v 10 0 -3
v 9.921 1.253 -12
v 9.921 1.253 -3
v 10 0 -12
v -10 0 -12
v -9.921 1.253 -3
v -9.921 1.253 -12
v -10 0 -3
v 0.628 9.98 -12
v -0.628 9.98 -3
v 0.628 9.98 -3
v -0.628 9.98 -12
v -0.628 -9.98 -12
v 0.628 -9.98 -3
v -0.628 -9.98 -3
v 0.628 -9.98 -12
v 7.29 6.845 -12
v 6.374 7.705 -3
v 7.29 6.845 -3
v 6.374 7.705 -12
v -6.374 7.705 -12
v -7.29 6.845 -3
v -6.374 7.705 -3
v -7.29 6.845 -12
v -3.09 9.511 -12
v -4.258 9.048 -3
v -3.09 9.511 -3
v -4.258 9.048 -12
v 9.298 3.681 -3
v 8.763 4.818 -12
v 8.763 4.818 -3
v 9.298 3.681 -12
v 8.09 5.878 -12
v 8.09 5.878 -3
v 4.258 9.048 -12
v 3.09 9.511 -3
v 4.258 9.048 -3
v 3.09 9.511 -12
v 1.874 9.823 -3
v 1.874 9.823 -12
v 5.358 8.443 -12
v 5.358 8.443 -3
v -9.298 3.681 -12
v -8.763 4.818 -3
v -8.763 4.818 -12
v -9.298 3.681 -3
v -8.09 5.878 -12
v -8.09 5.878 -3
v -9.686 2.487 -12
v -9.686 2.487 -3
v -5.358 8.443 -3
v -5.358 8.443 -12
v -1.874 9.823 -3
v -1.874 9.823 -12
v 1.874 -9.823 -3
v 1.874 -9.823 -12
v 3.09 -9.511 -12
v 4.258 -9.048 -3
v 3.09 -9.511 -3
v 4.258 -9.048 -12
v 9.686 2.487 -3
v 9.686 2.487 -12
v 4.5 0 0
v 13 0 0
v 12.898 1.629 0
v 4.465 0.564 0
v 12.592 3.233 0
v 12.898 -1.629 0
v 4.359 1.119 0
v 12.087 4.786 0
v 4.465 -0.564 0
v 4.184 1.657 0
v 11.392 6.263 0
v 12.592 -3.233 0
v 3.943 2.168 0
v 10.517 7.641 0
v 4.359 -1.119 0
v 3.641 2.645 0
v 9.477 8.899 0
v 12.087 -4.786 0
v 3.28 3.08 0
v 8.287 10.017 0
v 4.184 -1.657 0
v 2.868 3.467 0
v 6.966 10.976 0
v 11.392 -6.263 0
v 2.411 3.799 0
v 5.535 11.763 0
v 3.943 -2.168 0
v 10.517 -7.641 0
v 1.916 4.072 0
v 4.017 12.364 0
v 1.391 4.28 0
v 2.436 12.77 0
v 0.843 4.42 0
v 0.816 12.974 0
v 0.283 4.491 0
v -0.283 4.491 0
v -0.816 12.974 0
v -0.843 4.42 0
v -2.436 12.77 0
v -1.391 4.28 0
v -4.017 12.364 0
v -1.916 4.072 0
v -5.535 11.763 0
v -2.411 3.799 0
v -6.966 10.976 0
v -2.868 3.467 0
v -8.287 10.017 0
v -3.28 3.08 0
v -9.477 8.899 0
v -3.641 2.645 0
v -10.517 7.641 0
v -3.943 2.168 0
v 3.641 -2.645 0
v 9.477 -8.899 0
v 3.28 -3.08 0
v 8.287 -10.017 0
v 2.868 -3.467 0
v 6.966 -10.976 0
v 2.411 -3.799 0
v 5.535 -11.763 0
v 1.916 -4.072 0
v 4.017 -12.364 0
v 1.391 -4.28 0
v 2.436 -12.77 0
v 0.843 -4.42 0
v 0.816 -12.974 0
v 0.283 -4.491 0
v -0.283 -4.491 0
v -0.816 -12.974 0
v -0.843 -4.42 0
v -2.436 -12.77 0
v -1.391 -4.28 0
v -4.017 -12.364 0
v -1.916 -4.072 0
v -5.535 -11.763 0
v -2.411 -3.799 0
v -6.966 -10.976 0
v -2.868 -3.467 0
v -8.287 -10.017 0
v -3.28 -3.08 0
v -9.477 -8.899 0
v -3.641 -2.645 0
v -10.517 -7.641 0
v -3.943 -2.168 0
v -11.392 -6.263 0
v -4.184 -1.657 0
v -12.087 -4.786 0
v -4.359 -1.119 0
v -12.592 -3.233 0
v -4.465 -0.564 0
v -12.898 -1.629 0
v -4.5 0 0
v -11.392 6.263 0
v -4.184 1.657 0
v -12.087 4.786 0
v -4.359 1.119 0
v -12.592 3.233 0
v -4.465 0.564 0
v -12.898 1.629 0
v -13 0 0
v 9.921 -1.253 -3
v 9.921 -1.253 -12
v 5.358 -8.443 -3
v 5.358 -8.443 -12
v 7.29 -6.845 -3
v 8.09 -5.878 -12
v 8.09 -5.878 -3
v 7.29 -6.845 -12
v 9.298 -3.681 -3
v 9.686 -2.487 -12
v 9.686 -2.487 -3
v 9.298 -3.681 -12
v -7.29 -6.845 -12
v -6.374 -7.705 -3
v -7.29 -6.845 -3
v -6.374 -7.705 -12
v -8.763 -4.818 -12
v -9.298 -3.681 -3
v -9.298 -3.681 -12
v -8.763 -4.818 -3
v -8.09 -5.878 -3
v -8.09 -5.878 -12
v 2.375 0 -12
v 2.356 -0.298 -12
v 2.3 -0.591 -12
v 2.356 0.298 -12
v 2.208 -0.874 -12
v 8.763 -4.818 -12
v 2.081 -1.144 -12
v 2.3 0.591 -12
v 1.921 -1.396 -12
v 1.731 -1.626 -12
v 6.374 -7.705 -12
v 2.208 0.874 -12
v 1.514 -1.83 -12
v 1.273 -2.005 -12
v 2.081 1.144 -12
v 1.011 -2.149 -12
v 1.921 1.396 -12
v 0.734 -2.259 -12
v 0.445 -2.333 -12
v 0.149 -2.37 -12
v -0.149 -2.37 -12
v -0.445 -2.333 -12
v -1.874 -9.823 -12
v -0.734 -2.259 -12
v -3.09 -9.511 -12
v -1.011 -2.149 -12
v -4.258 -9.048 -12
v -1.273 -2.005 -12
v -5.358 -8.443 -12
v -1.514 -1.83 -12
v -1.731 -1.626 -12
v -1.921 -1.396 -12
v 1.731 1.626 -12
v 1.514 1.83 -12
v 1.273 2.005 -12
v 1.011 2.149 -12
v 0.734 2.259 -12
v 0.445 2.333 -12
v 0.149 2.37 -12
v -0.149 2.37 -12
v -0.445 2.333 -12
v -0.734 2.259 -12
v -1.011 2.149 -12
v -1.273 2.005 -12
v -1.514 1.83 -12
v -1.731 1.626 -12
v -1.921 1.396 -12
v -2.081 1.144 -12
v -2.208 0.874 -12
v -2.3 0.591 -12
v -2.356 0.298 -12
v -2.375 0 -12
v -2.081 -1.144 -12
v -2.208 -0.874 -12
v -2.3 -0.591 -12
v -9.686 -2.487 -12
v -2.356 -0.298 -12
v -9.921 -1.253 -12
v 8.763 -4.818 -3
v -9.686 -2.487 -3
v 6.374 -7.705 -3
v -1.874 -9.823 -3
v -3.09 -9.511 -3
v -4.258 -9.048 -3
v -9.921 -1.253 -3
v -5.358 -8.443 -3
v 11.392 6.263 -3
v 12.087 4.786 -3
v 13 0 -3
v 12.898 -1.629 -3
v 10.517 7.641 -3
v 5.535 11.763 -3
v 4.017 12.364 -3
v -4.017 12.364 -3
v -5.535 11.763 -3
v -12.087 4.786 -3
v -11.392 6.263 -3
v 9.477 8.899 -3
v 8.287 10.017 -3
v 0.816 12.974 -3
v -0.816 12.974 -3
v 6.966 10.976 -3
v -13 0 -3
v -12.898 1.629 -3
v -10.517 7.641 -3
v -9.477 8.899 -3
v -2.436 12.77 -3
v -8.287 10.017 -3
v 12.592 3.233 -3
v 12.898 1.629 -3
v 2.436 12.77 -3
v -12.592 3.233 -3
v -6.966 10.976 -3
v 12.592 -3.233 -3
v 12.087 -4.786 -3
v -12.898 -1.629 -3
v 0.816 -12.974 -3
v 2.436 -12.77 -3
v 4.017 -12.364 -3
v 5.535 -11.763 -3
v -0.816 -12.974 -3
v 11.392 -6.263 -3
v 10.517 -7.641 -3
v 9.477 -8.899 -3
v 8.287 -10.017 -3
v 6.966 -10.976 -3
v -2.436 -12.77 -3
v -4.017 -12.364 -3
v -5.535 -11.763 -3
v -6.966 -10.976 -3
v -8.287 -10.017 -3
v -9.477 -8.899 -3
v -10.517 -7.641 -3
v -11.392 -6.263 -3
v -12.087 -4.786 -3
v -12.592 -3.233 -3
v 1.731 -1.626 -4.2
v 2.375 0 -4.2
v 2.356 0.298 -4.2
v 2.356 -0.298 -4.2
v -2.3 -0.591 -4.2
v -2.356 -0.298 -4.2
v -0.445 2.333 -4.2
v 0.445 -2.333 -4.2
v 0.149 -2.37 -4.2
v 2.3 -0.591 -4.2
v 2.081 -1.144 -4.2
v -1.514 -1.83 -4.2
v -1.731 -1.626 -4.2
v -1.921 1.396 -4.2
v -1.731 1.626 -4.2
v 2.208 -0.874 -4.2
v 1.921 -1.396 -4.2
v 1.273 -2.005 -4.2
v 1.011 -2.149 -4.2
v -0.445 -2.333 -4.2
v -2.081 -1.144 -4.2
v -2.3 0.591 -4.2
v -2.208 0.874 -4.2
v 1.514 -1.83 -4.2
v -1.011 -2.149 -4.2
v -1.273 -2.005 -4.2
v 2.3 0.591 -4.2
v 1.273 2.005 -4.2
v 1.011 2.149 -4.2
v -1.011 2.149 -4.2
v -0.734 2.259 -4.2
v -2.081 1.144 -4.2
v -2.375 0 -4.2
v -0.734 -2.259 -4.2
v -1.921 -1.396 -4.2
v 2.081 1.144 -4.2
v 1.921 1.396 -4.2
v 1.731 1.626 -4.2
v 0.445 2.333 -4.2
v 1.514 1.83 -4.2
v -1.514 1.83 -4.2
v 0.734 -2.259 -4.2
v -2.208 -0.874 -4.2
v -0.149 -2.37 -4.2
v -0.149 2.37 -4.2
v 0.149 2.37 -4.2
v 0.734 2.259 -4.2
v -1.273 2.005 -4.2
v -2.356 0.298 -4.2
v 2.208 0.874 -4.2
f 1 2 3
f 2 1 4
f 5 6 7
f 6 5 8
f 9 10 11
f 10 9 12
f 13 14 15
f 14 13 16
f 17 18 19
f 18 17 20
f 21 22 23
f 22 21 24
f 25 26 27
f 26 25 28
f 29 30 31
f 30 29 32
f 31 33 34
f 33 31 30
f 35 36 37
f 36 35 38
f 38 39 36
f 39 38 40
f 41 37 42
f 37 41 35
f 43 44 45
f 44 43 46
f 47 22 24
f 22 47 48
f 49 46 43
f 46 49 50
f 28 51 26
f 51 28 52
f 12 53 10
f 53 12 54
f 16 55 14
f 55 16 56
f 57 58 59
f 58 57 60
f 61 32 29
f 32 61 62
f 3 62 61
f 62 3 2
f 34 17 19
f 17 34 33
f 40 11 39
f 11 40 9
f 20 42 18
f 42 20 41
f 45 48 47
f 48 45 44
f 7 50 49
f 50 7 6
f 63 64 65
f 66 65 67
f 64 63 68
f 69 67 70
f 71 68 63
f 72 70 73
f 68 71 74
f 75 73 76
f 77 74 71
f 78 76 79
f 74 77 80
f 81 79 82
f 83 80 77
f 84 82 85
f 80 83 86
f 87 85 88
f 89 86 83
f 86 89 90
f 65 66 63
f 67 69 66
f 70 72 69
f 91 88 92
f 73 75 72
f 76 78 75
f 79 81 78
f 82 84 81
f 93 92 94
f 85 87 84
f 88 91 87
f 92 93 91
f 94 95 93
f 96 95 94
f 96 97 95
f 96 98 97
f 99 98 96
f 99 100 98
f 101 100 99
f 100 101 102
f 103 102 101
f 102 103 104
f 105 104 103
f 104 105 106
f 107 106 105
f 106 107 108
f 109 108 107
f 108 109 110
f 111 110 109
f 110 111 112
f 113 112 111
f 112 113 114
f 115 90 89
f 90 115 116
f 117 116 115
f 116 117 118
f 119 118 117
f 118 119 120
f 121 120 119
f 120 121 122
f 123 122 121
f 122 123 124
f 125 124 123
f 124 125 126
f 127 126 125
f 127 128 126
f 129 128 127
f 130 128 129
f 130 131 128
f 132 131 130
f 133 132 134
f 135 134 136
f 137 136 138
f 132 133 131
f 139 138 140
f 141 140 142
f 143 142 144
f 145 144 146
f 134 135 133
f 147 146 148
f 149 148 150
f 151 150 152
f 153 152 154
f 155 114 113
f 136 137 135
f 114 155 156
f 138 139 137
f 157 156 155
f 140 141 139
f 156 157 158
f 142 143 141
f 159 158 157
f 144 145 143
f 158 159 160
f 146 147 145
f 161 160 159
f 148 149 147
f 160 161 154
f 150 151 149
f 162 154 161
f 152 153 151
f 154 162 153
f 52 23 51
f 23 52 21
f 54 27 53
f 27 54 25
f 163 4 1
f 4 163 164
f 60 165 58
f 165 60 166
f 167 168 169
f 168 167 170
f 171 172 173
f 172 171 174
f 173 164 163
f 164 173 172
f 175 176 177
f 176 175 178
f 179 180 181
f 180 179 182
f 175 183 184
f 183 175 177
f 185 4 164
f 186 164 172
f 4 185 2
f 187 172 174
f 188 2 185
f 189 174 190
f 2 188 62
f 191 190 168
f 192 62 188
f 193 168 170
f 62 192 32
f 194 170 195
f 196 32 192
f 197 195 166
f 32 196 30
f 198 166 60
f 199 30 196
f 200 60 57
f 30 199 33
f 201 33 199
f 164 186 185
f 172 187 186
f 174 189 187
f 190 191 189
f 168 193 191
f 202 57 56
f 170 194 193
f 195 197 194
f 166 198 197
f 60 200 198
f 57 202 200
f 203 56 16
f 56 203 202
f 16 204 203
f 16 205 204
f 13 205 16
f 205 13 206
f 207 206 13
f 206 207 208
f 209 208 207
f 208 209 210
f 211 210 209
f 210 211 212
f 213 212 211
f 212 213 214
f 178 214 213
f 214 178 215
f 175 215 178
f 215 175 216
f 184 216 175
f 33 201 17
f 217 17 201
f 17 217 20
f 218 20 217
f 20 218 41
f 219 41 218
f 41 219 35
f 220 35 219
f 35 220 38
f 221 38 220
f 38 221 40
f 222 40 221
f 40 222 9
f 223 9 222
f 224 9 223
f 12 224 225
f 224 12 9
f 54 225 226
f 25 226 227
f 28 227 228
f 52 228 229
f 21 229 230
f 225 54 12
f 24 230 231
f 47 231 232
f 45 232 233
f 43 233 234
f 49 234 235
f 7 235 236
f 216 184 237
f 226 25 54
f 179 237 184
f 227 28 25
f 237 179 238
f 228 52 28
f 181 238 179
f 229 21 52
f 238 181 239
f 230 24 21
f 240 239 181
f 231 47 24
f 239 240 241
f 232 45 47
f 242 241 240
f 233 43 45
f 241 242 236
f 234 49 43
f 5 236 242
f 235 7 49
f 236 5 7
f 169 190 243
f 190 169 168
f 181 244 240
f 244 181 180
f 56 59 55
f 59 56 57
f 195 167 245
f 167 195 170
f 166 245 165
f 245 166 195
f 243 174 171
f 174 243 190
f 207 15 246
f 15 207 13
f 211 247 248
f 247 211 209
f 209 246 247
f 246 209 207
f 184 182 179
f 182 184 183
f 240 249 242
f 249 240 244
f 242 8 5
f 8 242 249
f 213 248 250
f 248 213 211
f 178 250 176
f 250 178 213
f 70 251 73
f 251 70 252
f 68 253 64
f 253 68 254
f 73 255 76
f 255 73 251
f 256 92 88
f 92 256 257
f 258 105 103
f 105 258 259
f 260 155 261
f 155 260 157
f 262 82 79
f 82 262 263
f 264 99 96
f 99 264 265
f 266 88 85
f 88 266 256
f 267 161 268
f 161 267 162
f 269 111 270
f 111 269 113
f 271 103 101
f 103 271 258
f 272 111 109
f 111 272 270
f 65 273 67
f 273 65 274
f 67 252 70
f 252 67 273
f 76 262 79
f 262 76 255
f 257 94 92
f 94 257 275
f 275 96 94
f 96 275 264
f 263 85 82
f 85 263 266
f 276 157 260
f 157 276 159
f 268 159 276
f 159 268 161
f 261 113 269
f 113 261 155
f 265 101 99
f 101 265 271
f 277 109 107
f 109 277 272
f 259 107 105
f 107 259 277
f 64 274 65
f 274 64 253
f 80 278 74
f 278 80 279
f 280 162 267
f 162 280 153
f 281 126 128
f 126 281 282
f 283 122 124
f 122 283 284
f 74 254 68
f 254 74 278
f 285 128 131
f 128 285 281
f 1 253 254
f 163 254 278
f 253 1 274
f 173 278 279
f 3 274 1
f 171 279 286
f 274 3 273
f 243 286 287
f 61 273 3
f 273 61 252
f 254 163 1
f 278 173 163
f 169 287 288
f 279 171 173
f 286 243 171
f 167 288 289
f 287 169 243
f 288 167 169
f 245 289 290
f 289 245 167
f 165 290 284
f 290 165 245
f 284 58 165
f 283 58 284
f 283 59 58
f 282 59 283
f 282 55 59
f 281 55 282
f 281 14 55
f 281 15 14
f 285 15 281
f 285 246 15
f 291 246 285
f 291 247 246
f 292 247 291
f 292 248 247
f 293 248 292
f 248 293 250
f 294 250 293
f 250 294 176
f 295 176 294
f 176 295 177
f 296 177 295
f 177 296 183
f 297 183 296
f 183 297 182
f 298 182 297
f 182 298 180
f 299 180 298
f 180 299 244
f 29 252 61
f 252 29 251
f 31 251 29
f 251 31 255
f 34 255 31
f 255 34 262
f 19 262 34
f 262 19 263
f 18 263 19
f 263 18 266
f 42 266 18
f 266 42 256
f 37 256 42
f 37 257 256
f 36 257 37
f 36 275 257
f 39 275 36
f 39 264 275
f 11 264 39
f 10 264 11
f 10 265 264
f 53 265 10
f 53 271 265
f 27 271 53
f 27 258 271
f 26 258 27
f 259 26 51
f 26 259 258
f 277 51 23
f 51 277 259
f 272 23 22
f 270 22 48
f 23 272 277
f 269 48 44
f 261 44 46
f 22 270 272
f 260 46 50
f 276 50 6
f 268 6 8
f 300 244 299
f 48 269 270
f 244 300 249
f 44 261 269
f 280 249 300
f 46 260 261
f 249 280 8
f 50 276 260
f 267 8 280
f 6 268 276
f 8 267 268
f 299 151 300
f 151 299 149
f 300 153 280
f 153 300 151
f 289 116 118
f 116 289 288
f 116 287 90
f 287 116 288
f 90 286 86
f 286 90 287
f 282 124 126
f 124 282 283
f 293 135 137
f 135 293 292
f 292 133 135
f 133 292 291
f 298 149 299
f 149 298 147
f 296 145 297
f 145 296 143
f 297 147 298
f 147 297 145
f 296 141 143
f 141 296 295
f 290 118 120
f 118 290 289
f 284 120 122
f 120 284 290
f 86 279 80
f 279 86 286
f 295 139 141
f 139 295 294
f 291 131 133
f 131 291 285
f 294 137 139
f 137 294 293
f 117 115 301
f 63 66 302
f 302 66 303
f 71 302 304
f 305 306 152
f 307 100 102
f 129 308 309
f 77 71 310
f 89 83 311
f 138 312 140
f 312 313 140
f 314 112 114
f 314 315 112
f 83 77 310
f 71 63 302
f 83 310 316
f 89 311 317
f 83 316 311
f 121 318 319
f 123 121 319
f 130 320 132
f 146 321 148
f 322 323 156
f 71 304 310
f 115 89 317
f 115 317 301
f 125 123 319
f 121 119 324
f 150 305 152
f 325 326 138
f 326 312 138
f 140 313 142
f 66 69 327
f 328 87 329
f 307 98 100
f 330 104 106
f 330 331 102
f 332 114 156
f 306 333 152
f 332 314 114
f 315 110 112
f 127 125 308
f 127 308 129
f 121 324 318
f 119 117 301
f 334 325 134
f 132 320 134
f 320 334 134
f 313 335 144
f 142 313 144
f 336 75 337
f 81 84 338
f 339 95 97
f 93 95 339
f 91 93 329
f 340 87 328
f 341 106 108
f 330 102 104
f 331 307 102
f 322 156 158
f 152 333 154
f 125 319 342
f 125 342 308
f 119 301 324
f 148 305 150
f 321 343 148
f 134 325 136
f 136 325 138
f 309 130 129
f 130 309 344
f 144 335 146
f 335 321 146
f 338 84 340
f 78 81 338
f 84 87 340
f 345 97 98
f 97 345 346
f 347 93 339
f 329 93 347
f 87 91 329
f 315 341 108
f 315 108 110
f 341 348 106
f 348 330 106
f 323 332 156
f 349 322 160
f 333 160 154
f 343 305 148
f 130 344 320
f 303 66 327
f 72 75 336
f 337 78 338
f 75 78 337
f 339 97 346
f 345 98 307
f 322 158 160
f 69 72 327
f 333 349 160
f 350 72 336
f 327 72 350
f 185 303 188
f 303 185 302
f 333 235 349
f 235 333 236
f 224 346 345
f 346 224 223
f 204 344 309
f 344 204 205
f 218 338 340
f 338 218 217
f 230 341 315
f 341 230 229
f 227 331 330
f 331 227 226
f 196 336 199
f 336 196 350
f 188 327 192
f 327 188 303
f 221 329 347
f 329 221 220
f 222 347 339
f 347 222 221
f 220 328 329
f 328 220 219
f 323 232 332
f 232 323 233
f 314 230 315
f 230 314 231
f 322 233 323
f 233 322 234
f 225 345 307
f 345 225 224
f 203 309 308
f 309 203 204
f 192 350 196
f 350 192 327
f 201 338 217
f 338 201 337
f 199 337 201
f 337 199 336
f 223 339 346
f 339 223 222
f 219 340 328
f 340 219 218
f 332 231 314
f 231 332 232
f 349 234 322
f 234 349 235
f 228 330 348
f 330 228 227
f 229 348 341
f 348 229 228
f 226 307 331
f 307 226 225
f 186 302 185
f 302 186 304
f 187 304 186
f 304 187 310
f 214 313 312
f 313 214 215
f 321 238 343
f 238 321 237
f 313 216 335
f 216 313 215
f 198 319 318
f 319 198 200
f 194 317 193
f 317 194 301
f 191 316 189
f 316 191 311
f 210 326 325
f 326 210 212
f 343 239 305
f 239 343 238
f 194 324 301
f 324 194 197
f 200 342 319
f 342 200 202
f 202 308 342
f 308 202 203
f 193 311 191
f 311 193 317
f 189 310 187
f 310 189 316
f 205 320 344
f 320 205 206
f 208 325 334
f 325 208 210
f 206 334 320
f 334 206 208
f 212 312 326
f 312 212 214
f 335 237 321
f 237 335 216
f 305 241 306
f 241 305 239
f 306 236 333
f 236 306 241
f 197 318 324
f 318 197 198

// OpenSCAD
$fn = 50;


difference() {
	union() {
		translate(v = [0, 0, -12.0000000000]) {
			cylinder(h = 12, r = 10.0000000000);
		}
		translate(v = [0, 0, -3.0000000000]) {
			cylinder(h = 3, r = 13.0000000000);
		}
	}
	union() {
		translate(v = [0, 0, 0]) {
			rotate(a = [0, 0, 0]) {
				difference() {
					union() {
						#translate(v = [0, 0, -12.0000000000]) {
							cylinder(h = 12, r = 2.2500000000);
						}
						#translate(v = [0, 0, -4.2000000000]) {
							cylinder(h = 4.2000000000, r = 10.0000000000, r1 = 2.3750000000, r2 = 4.5000000000);
						}
						#translate(v = [0, 0, -12.0000000000]) {
							cylinder(h = 12, r = 2.3750000000);
						}
						#translate(v = [0, 0, -12.0000000000]) {
							cylinder(h = 12, r = 2.2500000000);
						}
					}
					union();
				}
			}
		}
	}
}
